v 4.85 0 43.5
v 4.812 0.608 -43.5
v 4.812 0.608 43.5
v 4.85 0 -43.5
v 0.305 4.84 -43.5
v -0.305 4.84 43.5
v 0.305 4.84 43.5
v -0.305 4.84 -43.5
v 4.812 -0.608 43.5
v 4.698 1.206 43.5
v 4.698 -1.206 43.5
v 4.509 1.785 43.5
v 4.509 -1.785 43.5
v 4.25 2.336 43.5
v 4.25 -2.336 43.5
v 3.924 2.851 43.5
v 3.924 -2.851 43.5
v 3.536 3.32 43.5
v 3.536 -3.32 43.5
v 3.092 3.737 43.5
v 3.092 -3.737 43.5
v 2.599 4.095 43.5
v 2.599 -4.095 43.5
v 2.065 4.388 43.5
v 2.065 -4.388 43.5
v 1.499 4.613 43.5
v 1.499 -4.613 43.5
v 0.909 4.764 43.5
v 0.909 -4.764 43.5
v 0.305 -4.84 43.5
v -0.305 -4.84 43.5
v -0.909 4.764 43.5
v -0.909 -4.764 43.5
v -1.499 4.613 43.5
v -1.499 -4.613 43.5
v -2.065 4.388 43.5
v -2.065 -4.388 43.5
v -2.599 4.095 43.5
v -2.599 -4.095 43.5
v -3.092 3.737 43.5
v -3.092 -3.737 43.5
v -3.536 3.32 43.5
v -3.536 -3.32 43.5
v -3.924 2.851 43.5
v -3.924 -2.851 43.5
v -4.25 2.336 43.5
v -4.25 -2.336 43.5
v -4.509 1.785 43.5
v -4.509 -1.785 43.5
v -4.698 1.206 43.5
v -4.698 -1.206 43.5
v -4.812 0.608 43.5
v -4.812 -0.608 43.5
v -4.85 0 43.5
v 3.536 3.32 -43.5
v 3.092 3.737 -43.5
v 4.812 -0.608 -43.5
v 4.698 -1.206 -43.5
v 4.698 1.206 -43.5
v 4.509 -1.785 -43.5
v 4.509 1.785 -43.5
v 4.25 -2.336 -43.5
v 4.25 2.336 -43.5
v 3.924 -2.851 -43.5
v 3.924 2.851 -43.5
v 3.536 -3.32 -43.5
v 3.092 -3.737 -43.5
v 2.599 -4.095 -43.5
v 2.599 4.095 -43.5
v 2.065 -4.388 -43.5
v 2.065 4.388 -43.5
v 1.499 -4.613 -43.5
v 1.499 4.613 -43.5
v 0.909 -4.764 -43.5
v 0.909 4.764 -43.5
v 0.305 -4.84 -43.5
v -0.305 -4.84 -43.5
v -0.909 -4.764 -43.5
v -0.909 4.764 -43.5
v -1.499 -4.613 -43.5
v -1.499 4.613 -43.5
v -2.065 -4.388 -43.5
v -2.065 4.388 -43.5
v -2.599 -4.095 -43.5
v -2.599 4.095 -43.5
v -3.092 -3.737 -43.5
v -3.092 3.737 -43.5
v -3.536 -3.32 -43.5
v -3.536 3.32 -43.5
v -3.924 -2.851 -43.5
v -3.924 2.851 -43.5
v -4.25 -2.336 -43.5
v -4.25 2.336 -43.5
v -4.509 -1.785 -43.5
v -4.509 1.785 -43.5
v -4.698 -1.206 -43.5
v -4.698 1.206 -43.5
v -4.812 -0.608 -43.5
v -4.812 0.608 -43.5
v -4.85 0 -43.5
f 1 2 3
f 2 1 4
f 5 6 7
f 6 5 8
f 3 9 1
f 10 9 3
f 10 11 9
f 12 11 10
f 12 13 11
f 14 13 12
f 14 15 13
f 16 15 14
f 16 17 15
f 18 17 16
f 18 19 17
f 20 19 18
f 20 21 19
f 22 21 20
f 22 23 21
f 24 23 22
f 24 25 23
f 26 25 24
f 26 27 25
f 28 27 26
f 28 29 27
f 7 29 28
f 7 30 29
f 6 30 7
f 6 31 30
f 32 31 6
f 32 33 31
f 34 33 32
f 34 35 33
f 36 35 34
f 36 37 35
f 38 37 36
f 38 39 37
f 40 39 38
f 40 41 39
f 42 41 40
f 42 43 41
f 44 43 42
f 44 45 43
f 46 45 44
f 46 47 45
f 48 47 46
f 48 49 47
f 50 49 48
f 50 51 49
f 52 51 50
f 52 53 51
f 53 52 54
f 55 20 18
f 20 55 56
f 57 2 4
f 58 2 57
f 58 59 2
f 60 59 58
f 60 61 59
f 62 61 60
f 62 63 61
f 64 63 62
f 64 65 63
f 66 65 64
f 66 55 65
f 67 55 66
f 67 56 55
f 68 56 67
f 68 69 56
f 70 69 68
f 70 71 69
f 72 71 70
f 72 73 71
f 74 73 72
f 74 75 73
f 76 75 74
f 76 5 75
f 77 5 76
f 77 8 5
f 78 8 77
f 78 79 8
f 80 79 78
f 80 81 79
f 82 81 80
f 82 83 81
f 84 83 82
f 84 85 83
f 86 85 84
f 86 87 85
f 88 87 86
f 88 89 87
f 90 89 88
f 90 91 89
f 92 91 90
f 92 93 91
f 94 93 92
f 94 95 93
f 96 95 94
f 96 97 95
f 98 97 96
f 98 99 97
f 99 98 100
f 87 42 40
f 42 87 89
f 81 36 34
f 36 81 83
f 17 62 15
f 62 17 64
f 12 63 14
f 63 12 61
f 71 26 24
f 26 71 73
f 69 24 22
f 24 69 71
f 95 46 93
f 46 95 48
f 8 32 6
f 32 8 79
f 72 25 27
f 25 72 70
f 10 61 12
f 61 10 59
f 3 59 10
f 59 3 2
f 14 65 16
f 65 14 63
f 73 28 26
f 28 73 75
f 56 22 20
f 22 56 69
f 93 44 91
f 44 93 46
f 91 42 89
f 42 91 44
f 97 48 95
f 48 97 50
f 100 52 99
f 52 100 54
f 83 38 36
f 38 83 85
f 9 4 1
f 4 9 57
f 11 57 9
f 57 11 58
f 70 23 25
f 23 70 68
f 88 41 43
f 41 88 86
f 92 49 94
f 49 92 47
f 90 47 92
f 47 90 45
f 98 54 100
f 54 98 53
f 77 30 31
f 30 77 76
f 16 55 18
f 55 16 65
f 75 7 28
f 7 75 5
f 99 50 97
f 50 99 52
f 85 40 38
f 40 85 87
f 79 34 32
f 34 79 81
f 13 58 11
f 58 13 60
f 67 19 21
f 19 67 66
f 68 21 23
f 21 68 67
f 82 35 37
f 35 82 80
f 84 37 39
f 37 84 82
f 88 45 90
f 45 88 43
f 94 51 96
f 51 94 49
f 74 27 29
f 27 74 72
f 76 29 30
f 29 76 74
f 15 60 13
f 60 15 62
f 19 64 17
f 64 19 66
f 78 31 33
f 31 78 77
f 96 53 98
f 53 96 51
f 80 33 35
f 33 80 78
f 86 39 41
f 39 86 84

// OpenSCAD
$fn = 50;


difference() {
	union() {
		translate(v = [0, 0, -43.5000000000]) {
			cylinder(h = 87, r = 4.8500000000);
		}
	}
	union() {
		translate(v = [0, 0, -100.0000000000]) {
			cylinder(h = 200, r = 0);
		}
	}
}
